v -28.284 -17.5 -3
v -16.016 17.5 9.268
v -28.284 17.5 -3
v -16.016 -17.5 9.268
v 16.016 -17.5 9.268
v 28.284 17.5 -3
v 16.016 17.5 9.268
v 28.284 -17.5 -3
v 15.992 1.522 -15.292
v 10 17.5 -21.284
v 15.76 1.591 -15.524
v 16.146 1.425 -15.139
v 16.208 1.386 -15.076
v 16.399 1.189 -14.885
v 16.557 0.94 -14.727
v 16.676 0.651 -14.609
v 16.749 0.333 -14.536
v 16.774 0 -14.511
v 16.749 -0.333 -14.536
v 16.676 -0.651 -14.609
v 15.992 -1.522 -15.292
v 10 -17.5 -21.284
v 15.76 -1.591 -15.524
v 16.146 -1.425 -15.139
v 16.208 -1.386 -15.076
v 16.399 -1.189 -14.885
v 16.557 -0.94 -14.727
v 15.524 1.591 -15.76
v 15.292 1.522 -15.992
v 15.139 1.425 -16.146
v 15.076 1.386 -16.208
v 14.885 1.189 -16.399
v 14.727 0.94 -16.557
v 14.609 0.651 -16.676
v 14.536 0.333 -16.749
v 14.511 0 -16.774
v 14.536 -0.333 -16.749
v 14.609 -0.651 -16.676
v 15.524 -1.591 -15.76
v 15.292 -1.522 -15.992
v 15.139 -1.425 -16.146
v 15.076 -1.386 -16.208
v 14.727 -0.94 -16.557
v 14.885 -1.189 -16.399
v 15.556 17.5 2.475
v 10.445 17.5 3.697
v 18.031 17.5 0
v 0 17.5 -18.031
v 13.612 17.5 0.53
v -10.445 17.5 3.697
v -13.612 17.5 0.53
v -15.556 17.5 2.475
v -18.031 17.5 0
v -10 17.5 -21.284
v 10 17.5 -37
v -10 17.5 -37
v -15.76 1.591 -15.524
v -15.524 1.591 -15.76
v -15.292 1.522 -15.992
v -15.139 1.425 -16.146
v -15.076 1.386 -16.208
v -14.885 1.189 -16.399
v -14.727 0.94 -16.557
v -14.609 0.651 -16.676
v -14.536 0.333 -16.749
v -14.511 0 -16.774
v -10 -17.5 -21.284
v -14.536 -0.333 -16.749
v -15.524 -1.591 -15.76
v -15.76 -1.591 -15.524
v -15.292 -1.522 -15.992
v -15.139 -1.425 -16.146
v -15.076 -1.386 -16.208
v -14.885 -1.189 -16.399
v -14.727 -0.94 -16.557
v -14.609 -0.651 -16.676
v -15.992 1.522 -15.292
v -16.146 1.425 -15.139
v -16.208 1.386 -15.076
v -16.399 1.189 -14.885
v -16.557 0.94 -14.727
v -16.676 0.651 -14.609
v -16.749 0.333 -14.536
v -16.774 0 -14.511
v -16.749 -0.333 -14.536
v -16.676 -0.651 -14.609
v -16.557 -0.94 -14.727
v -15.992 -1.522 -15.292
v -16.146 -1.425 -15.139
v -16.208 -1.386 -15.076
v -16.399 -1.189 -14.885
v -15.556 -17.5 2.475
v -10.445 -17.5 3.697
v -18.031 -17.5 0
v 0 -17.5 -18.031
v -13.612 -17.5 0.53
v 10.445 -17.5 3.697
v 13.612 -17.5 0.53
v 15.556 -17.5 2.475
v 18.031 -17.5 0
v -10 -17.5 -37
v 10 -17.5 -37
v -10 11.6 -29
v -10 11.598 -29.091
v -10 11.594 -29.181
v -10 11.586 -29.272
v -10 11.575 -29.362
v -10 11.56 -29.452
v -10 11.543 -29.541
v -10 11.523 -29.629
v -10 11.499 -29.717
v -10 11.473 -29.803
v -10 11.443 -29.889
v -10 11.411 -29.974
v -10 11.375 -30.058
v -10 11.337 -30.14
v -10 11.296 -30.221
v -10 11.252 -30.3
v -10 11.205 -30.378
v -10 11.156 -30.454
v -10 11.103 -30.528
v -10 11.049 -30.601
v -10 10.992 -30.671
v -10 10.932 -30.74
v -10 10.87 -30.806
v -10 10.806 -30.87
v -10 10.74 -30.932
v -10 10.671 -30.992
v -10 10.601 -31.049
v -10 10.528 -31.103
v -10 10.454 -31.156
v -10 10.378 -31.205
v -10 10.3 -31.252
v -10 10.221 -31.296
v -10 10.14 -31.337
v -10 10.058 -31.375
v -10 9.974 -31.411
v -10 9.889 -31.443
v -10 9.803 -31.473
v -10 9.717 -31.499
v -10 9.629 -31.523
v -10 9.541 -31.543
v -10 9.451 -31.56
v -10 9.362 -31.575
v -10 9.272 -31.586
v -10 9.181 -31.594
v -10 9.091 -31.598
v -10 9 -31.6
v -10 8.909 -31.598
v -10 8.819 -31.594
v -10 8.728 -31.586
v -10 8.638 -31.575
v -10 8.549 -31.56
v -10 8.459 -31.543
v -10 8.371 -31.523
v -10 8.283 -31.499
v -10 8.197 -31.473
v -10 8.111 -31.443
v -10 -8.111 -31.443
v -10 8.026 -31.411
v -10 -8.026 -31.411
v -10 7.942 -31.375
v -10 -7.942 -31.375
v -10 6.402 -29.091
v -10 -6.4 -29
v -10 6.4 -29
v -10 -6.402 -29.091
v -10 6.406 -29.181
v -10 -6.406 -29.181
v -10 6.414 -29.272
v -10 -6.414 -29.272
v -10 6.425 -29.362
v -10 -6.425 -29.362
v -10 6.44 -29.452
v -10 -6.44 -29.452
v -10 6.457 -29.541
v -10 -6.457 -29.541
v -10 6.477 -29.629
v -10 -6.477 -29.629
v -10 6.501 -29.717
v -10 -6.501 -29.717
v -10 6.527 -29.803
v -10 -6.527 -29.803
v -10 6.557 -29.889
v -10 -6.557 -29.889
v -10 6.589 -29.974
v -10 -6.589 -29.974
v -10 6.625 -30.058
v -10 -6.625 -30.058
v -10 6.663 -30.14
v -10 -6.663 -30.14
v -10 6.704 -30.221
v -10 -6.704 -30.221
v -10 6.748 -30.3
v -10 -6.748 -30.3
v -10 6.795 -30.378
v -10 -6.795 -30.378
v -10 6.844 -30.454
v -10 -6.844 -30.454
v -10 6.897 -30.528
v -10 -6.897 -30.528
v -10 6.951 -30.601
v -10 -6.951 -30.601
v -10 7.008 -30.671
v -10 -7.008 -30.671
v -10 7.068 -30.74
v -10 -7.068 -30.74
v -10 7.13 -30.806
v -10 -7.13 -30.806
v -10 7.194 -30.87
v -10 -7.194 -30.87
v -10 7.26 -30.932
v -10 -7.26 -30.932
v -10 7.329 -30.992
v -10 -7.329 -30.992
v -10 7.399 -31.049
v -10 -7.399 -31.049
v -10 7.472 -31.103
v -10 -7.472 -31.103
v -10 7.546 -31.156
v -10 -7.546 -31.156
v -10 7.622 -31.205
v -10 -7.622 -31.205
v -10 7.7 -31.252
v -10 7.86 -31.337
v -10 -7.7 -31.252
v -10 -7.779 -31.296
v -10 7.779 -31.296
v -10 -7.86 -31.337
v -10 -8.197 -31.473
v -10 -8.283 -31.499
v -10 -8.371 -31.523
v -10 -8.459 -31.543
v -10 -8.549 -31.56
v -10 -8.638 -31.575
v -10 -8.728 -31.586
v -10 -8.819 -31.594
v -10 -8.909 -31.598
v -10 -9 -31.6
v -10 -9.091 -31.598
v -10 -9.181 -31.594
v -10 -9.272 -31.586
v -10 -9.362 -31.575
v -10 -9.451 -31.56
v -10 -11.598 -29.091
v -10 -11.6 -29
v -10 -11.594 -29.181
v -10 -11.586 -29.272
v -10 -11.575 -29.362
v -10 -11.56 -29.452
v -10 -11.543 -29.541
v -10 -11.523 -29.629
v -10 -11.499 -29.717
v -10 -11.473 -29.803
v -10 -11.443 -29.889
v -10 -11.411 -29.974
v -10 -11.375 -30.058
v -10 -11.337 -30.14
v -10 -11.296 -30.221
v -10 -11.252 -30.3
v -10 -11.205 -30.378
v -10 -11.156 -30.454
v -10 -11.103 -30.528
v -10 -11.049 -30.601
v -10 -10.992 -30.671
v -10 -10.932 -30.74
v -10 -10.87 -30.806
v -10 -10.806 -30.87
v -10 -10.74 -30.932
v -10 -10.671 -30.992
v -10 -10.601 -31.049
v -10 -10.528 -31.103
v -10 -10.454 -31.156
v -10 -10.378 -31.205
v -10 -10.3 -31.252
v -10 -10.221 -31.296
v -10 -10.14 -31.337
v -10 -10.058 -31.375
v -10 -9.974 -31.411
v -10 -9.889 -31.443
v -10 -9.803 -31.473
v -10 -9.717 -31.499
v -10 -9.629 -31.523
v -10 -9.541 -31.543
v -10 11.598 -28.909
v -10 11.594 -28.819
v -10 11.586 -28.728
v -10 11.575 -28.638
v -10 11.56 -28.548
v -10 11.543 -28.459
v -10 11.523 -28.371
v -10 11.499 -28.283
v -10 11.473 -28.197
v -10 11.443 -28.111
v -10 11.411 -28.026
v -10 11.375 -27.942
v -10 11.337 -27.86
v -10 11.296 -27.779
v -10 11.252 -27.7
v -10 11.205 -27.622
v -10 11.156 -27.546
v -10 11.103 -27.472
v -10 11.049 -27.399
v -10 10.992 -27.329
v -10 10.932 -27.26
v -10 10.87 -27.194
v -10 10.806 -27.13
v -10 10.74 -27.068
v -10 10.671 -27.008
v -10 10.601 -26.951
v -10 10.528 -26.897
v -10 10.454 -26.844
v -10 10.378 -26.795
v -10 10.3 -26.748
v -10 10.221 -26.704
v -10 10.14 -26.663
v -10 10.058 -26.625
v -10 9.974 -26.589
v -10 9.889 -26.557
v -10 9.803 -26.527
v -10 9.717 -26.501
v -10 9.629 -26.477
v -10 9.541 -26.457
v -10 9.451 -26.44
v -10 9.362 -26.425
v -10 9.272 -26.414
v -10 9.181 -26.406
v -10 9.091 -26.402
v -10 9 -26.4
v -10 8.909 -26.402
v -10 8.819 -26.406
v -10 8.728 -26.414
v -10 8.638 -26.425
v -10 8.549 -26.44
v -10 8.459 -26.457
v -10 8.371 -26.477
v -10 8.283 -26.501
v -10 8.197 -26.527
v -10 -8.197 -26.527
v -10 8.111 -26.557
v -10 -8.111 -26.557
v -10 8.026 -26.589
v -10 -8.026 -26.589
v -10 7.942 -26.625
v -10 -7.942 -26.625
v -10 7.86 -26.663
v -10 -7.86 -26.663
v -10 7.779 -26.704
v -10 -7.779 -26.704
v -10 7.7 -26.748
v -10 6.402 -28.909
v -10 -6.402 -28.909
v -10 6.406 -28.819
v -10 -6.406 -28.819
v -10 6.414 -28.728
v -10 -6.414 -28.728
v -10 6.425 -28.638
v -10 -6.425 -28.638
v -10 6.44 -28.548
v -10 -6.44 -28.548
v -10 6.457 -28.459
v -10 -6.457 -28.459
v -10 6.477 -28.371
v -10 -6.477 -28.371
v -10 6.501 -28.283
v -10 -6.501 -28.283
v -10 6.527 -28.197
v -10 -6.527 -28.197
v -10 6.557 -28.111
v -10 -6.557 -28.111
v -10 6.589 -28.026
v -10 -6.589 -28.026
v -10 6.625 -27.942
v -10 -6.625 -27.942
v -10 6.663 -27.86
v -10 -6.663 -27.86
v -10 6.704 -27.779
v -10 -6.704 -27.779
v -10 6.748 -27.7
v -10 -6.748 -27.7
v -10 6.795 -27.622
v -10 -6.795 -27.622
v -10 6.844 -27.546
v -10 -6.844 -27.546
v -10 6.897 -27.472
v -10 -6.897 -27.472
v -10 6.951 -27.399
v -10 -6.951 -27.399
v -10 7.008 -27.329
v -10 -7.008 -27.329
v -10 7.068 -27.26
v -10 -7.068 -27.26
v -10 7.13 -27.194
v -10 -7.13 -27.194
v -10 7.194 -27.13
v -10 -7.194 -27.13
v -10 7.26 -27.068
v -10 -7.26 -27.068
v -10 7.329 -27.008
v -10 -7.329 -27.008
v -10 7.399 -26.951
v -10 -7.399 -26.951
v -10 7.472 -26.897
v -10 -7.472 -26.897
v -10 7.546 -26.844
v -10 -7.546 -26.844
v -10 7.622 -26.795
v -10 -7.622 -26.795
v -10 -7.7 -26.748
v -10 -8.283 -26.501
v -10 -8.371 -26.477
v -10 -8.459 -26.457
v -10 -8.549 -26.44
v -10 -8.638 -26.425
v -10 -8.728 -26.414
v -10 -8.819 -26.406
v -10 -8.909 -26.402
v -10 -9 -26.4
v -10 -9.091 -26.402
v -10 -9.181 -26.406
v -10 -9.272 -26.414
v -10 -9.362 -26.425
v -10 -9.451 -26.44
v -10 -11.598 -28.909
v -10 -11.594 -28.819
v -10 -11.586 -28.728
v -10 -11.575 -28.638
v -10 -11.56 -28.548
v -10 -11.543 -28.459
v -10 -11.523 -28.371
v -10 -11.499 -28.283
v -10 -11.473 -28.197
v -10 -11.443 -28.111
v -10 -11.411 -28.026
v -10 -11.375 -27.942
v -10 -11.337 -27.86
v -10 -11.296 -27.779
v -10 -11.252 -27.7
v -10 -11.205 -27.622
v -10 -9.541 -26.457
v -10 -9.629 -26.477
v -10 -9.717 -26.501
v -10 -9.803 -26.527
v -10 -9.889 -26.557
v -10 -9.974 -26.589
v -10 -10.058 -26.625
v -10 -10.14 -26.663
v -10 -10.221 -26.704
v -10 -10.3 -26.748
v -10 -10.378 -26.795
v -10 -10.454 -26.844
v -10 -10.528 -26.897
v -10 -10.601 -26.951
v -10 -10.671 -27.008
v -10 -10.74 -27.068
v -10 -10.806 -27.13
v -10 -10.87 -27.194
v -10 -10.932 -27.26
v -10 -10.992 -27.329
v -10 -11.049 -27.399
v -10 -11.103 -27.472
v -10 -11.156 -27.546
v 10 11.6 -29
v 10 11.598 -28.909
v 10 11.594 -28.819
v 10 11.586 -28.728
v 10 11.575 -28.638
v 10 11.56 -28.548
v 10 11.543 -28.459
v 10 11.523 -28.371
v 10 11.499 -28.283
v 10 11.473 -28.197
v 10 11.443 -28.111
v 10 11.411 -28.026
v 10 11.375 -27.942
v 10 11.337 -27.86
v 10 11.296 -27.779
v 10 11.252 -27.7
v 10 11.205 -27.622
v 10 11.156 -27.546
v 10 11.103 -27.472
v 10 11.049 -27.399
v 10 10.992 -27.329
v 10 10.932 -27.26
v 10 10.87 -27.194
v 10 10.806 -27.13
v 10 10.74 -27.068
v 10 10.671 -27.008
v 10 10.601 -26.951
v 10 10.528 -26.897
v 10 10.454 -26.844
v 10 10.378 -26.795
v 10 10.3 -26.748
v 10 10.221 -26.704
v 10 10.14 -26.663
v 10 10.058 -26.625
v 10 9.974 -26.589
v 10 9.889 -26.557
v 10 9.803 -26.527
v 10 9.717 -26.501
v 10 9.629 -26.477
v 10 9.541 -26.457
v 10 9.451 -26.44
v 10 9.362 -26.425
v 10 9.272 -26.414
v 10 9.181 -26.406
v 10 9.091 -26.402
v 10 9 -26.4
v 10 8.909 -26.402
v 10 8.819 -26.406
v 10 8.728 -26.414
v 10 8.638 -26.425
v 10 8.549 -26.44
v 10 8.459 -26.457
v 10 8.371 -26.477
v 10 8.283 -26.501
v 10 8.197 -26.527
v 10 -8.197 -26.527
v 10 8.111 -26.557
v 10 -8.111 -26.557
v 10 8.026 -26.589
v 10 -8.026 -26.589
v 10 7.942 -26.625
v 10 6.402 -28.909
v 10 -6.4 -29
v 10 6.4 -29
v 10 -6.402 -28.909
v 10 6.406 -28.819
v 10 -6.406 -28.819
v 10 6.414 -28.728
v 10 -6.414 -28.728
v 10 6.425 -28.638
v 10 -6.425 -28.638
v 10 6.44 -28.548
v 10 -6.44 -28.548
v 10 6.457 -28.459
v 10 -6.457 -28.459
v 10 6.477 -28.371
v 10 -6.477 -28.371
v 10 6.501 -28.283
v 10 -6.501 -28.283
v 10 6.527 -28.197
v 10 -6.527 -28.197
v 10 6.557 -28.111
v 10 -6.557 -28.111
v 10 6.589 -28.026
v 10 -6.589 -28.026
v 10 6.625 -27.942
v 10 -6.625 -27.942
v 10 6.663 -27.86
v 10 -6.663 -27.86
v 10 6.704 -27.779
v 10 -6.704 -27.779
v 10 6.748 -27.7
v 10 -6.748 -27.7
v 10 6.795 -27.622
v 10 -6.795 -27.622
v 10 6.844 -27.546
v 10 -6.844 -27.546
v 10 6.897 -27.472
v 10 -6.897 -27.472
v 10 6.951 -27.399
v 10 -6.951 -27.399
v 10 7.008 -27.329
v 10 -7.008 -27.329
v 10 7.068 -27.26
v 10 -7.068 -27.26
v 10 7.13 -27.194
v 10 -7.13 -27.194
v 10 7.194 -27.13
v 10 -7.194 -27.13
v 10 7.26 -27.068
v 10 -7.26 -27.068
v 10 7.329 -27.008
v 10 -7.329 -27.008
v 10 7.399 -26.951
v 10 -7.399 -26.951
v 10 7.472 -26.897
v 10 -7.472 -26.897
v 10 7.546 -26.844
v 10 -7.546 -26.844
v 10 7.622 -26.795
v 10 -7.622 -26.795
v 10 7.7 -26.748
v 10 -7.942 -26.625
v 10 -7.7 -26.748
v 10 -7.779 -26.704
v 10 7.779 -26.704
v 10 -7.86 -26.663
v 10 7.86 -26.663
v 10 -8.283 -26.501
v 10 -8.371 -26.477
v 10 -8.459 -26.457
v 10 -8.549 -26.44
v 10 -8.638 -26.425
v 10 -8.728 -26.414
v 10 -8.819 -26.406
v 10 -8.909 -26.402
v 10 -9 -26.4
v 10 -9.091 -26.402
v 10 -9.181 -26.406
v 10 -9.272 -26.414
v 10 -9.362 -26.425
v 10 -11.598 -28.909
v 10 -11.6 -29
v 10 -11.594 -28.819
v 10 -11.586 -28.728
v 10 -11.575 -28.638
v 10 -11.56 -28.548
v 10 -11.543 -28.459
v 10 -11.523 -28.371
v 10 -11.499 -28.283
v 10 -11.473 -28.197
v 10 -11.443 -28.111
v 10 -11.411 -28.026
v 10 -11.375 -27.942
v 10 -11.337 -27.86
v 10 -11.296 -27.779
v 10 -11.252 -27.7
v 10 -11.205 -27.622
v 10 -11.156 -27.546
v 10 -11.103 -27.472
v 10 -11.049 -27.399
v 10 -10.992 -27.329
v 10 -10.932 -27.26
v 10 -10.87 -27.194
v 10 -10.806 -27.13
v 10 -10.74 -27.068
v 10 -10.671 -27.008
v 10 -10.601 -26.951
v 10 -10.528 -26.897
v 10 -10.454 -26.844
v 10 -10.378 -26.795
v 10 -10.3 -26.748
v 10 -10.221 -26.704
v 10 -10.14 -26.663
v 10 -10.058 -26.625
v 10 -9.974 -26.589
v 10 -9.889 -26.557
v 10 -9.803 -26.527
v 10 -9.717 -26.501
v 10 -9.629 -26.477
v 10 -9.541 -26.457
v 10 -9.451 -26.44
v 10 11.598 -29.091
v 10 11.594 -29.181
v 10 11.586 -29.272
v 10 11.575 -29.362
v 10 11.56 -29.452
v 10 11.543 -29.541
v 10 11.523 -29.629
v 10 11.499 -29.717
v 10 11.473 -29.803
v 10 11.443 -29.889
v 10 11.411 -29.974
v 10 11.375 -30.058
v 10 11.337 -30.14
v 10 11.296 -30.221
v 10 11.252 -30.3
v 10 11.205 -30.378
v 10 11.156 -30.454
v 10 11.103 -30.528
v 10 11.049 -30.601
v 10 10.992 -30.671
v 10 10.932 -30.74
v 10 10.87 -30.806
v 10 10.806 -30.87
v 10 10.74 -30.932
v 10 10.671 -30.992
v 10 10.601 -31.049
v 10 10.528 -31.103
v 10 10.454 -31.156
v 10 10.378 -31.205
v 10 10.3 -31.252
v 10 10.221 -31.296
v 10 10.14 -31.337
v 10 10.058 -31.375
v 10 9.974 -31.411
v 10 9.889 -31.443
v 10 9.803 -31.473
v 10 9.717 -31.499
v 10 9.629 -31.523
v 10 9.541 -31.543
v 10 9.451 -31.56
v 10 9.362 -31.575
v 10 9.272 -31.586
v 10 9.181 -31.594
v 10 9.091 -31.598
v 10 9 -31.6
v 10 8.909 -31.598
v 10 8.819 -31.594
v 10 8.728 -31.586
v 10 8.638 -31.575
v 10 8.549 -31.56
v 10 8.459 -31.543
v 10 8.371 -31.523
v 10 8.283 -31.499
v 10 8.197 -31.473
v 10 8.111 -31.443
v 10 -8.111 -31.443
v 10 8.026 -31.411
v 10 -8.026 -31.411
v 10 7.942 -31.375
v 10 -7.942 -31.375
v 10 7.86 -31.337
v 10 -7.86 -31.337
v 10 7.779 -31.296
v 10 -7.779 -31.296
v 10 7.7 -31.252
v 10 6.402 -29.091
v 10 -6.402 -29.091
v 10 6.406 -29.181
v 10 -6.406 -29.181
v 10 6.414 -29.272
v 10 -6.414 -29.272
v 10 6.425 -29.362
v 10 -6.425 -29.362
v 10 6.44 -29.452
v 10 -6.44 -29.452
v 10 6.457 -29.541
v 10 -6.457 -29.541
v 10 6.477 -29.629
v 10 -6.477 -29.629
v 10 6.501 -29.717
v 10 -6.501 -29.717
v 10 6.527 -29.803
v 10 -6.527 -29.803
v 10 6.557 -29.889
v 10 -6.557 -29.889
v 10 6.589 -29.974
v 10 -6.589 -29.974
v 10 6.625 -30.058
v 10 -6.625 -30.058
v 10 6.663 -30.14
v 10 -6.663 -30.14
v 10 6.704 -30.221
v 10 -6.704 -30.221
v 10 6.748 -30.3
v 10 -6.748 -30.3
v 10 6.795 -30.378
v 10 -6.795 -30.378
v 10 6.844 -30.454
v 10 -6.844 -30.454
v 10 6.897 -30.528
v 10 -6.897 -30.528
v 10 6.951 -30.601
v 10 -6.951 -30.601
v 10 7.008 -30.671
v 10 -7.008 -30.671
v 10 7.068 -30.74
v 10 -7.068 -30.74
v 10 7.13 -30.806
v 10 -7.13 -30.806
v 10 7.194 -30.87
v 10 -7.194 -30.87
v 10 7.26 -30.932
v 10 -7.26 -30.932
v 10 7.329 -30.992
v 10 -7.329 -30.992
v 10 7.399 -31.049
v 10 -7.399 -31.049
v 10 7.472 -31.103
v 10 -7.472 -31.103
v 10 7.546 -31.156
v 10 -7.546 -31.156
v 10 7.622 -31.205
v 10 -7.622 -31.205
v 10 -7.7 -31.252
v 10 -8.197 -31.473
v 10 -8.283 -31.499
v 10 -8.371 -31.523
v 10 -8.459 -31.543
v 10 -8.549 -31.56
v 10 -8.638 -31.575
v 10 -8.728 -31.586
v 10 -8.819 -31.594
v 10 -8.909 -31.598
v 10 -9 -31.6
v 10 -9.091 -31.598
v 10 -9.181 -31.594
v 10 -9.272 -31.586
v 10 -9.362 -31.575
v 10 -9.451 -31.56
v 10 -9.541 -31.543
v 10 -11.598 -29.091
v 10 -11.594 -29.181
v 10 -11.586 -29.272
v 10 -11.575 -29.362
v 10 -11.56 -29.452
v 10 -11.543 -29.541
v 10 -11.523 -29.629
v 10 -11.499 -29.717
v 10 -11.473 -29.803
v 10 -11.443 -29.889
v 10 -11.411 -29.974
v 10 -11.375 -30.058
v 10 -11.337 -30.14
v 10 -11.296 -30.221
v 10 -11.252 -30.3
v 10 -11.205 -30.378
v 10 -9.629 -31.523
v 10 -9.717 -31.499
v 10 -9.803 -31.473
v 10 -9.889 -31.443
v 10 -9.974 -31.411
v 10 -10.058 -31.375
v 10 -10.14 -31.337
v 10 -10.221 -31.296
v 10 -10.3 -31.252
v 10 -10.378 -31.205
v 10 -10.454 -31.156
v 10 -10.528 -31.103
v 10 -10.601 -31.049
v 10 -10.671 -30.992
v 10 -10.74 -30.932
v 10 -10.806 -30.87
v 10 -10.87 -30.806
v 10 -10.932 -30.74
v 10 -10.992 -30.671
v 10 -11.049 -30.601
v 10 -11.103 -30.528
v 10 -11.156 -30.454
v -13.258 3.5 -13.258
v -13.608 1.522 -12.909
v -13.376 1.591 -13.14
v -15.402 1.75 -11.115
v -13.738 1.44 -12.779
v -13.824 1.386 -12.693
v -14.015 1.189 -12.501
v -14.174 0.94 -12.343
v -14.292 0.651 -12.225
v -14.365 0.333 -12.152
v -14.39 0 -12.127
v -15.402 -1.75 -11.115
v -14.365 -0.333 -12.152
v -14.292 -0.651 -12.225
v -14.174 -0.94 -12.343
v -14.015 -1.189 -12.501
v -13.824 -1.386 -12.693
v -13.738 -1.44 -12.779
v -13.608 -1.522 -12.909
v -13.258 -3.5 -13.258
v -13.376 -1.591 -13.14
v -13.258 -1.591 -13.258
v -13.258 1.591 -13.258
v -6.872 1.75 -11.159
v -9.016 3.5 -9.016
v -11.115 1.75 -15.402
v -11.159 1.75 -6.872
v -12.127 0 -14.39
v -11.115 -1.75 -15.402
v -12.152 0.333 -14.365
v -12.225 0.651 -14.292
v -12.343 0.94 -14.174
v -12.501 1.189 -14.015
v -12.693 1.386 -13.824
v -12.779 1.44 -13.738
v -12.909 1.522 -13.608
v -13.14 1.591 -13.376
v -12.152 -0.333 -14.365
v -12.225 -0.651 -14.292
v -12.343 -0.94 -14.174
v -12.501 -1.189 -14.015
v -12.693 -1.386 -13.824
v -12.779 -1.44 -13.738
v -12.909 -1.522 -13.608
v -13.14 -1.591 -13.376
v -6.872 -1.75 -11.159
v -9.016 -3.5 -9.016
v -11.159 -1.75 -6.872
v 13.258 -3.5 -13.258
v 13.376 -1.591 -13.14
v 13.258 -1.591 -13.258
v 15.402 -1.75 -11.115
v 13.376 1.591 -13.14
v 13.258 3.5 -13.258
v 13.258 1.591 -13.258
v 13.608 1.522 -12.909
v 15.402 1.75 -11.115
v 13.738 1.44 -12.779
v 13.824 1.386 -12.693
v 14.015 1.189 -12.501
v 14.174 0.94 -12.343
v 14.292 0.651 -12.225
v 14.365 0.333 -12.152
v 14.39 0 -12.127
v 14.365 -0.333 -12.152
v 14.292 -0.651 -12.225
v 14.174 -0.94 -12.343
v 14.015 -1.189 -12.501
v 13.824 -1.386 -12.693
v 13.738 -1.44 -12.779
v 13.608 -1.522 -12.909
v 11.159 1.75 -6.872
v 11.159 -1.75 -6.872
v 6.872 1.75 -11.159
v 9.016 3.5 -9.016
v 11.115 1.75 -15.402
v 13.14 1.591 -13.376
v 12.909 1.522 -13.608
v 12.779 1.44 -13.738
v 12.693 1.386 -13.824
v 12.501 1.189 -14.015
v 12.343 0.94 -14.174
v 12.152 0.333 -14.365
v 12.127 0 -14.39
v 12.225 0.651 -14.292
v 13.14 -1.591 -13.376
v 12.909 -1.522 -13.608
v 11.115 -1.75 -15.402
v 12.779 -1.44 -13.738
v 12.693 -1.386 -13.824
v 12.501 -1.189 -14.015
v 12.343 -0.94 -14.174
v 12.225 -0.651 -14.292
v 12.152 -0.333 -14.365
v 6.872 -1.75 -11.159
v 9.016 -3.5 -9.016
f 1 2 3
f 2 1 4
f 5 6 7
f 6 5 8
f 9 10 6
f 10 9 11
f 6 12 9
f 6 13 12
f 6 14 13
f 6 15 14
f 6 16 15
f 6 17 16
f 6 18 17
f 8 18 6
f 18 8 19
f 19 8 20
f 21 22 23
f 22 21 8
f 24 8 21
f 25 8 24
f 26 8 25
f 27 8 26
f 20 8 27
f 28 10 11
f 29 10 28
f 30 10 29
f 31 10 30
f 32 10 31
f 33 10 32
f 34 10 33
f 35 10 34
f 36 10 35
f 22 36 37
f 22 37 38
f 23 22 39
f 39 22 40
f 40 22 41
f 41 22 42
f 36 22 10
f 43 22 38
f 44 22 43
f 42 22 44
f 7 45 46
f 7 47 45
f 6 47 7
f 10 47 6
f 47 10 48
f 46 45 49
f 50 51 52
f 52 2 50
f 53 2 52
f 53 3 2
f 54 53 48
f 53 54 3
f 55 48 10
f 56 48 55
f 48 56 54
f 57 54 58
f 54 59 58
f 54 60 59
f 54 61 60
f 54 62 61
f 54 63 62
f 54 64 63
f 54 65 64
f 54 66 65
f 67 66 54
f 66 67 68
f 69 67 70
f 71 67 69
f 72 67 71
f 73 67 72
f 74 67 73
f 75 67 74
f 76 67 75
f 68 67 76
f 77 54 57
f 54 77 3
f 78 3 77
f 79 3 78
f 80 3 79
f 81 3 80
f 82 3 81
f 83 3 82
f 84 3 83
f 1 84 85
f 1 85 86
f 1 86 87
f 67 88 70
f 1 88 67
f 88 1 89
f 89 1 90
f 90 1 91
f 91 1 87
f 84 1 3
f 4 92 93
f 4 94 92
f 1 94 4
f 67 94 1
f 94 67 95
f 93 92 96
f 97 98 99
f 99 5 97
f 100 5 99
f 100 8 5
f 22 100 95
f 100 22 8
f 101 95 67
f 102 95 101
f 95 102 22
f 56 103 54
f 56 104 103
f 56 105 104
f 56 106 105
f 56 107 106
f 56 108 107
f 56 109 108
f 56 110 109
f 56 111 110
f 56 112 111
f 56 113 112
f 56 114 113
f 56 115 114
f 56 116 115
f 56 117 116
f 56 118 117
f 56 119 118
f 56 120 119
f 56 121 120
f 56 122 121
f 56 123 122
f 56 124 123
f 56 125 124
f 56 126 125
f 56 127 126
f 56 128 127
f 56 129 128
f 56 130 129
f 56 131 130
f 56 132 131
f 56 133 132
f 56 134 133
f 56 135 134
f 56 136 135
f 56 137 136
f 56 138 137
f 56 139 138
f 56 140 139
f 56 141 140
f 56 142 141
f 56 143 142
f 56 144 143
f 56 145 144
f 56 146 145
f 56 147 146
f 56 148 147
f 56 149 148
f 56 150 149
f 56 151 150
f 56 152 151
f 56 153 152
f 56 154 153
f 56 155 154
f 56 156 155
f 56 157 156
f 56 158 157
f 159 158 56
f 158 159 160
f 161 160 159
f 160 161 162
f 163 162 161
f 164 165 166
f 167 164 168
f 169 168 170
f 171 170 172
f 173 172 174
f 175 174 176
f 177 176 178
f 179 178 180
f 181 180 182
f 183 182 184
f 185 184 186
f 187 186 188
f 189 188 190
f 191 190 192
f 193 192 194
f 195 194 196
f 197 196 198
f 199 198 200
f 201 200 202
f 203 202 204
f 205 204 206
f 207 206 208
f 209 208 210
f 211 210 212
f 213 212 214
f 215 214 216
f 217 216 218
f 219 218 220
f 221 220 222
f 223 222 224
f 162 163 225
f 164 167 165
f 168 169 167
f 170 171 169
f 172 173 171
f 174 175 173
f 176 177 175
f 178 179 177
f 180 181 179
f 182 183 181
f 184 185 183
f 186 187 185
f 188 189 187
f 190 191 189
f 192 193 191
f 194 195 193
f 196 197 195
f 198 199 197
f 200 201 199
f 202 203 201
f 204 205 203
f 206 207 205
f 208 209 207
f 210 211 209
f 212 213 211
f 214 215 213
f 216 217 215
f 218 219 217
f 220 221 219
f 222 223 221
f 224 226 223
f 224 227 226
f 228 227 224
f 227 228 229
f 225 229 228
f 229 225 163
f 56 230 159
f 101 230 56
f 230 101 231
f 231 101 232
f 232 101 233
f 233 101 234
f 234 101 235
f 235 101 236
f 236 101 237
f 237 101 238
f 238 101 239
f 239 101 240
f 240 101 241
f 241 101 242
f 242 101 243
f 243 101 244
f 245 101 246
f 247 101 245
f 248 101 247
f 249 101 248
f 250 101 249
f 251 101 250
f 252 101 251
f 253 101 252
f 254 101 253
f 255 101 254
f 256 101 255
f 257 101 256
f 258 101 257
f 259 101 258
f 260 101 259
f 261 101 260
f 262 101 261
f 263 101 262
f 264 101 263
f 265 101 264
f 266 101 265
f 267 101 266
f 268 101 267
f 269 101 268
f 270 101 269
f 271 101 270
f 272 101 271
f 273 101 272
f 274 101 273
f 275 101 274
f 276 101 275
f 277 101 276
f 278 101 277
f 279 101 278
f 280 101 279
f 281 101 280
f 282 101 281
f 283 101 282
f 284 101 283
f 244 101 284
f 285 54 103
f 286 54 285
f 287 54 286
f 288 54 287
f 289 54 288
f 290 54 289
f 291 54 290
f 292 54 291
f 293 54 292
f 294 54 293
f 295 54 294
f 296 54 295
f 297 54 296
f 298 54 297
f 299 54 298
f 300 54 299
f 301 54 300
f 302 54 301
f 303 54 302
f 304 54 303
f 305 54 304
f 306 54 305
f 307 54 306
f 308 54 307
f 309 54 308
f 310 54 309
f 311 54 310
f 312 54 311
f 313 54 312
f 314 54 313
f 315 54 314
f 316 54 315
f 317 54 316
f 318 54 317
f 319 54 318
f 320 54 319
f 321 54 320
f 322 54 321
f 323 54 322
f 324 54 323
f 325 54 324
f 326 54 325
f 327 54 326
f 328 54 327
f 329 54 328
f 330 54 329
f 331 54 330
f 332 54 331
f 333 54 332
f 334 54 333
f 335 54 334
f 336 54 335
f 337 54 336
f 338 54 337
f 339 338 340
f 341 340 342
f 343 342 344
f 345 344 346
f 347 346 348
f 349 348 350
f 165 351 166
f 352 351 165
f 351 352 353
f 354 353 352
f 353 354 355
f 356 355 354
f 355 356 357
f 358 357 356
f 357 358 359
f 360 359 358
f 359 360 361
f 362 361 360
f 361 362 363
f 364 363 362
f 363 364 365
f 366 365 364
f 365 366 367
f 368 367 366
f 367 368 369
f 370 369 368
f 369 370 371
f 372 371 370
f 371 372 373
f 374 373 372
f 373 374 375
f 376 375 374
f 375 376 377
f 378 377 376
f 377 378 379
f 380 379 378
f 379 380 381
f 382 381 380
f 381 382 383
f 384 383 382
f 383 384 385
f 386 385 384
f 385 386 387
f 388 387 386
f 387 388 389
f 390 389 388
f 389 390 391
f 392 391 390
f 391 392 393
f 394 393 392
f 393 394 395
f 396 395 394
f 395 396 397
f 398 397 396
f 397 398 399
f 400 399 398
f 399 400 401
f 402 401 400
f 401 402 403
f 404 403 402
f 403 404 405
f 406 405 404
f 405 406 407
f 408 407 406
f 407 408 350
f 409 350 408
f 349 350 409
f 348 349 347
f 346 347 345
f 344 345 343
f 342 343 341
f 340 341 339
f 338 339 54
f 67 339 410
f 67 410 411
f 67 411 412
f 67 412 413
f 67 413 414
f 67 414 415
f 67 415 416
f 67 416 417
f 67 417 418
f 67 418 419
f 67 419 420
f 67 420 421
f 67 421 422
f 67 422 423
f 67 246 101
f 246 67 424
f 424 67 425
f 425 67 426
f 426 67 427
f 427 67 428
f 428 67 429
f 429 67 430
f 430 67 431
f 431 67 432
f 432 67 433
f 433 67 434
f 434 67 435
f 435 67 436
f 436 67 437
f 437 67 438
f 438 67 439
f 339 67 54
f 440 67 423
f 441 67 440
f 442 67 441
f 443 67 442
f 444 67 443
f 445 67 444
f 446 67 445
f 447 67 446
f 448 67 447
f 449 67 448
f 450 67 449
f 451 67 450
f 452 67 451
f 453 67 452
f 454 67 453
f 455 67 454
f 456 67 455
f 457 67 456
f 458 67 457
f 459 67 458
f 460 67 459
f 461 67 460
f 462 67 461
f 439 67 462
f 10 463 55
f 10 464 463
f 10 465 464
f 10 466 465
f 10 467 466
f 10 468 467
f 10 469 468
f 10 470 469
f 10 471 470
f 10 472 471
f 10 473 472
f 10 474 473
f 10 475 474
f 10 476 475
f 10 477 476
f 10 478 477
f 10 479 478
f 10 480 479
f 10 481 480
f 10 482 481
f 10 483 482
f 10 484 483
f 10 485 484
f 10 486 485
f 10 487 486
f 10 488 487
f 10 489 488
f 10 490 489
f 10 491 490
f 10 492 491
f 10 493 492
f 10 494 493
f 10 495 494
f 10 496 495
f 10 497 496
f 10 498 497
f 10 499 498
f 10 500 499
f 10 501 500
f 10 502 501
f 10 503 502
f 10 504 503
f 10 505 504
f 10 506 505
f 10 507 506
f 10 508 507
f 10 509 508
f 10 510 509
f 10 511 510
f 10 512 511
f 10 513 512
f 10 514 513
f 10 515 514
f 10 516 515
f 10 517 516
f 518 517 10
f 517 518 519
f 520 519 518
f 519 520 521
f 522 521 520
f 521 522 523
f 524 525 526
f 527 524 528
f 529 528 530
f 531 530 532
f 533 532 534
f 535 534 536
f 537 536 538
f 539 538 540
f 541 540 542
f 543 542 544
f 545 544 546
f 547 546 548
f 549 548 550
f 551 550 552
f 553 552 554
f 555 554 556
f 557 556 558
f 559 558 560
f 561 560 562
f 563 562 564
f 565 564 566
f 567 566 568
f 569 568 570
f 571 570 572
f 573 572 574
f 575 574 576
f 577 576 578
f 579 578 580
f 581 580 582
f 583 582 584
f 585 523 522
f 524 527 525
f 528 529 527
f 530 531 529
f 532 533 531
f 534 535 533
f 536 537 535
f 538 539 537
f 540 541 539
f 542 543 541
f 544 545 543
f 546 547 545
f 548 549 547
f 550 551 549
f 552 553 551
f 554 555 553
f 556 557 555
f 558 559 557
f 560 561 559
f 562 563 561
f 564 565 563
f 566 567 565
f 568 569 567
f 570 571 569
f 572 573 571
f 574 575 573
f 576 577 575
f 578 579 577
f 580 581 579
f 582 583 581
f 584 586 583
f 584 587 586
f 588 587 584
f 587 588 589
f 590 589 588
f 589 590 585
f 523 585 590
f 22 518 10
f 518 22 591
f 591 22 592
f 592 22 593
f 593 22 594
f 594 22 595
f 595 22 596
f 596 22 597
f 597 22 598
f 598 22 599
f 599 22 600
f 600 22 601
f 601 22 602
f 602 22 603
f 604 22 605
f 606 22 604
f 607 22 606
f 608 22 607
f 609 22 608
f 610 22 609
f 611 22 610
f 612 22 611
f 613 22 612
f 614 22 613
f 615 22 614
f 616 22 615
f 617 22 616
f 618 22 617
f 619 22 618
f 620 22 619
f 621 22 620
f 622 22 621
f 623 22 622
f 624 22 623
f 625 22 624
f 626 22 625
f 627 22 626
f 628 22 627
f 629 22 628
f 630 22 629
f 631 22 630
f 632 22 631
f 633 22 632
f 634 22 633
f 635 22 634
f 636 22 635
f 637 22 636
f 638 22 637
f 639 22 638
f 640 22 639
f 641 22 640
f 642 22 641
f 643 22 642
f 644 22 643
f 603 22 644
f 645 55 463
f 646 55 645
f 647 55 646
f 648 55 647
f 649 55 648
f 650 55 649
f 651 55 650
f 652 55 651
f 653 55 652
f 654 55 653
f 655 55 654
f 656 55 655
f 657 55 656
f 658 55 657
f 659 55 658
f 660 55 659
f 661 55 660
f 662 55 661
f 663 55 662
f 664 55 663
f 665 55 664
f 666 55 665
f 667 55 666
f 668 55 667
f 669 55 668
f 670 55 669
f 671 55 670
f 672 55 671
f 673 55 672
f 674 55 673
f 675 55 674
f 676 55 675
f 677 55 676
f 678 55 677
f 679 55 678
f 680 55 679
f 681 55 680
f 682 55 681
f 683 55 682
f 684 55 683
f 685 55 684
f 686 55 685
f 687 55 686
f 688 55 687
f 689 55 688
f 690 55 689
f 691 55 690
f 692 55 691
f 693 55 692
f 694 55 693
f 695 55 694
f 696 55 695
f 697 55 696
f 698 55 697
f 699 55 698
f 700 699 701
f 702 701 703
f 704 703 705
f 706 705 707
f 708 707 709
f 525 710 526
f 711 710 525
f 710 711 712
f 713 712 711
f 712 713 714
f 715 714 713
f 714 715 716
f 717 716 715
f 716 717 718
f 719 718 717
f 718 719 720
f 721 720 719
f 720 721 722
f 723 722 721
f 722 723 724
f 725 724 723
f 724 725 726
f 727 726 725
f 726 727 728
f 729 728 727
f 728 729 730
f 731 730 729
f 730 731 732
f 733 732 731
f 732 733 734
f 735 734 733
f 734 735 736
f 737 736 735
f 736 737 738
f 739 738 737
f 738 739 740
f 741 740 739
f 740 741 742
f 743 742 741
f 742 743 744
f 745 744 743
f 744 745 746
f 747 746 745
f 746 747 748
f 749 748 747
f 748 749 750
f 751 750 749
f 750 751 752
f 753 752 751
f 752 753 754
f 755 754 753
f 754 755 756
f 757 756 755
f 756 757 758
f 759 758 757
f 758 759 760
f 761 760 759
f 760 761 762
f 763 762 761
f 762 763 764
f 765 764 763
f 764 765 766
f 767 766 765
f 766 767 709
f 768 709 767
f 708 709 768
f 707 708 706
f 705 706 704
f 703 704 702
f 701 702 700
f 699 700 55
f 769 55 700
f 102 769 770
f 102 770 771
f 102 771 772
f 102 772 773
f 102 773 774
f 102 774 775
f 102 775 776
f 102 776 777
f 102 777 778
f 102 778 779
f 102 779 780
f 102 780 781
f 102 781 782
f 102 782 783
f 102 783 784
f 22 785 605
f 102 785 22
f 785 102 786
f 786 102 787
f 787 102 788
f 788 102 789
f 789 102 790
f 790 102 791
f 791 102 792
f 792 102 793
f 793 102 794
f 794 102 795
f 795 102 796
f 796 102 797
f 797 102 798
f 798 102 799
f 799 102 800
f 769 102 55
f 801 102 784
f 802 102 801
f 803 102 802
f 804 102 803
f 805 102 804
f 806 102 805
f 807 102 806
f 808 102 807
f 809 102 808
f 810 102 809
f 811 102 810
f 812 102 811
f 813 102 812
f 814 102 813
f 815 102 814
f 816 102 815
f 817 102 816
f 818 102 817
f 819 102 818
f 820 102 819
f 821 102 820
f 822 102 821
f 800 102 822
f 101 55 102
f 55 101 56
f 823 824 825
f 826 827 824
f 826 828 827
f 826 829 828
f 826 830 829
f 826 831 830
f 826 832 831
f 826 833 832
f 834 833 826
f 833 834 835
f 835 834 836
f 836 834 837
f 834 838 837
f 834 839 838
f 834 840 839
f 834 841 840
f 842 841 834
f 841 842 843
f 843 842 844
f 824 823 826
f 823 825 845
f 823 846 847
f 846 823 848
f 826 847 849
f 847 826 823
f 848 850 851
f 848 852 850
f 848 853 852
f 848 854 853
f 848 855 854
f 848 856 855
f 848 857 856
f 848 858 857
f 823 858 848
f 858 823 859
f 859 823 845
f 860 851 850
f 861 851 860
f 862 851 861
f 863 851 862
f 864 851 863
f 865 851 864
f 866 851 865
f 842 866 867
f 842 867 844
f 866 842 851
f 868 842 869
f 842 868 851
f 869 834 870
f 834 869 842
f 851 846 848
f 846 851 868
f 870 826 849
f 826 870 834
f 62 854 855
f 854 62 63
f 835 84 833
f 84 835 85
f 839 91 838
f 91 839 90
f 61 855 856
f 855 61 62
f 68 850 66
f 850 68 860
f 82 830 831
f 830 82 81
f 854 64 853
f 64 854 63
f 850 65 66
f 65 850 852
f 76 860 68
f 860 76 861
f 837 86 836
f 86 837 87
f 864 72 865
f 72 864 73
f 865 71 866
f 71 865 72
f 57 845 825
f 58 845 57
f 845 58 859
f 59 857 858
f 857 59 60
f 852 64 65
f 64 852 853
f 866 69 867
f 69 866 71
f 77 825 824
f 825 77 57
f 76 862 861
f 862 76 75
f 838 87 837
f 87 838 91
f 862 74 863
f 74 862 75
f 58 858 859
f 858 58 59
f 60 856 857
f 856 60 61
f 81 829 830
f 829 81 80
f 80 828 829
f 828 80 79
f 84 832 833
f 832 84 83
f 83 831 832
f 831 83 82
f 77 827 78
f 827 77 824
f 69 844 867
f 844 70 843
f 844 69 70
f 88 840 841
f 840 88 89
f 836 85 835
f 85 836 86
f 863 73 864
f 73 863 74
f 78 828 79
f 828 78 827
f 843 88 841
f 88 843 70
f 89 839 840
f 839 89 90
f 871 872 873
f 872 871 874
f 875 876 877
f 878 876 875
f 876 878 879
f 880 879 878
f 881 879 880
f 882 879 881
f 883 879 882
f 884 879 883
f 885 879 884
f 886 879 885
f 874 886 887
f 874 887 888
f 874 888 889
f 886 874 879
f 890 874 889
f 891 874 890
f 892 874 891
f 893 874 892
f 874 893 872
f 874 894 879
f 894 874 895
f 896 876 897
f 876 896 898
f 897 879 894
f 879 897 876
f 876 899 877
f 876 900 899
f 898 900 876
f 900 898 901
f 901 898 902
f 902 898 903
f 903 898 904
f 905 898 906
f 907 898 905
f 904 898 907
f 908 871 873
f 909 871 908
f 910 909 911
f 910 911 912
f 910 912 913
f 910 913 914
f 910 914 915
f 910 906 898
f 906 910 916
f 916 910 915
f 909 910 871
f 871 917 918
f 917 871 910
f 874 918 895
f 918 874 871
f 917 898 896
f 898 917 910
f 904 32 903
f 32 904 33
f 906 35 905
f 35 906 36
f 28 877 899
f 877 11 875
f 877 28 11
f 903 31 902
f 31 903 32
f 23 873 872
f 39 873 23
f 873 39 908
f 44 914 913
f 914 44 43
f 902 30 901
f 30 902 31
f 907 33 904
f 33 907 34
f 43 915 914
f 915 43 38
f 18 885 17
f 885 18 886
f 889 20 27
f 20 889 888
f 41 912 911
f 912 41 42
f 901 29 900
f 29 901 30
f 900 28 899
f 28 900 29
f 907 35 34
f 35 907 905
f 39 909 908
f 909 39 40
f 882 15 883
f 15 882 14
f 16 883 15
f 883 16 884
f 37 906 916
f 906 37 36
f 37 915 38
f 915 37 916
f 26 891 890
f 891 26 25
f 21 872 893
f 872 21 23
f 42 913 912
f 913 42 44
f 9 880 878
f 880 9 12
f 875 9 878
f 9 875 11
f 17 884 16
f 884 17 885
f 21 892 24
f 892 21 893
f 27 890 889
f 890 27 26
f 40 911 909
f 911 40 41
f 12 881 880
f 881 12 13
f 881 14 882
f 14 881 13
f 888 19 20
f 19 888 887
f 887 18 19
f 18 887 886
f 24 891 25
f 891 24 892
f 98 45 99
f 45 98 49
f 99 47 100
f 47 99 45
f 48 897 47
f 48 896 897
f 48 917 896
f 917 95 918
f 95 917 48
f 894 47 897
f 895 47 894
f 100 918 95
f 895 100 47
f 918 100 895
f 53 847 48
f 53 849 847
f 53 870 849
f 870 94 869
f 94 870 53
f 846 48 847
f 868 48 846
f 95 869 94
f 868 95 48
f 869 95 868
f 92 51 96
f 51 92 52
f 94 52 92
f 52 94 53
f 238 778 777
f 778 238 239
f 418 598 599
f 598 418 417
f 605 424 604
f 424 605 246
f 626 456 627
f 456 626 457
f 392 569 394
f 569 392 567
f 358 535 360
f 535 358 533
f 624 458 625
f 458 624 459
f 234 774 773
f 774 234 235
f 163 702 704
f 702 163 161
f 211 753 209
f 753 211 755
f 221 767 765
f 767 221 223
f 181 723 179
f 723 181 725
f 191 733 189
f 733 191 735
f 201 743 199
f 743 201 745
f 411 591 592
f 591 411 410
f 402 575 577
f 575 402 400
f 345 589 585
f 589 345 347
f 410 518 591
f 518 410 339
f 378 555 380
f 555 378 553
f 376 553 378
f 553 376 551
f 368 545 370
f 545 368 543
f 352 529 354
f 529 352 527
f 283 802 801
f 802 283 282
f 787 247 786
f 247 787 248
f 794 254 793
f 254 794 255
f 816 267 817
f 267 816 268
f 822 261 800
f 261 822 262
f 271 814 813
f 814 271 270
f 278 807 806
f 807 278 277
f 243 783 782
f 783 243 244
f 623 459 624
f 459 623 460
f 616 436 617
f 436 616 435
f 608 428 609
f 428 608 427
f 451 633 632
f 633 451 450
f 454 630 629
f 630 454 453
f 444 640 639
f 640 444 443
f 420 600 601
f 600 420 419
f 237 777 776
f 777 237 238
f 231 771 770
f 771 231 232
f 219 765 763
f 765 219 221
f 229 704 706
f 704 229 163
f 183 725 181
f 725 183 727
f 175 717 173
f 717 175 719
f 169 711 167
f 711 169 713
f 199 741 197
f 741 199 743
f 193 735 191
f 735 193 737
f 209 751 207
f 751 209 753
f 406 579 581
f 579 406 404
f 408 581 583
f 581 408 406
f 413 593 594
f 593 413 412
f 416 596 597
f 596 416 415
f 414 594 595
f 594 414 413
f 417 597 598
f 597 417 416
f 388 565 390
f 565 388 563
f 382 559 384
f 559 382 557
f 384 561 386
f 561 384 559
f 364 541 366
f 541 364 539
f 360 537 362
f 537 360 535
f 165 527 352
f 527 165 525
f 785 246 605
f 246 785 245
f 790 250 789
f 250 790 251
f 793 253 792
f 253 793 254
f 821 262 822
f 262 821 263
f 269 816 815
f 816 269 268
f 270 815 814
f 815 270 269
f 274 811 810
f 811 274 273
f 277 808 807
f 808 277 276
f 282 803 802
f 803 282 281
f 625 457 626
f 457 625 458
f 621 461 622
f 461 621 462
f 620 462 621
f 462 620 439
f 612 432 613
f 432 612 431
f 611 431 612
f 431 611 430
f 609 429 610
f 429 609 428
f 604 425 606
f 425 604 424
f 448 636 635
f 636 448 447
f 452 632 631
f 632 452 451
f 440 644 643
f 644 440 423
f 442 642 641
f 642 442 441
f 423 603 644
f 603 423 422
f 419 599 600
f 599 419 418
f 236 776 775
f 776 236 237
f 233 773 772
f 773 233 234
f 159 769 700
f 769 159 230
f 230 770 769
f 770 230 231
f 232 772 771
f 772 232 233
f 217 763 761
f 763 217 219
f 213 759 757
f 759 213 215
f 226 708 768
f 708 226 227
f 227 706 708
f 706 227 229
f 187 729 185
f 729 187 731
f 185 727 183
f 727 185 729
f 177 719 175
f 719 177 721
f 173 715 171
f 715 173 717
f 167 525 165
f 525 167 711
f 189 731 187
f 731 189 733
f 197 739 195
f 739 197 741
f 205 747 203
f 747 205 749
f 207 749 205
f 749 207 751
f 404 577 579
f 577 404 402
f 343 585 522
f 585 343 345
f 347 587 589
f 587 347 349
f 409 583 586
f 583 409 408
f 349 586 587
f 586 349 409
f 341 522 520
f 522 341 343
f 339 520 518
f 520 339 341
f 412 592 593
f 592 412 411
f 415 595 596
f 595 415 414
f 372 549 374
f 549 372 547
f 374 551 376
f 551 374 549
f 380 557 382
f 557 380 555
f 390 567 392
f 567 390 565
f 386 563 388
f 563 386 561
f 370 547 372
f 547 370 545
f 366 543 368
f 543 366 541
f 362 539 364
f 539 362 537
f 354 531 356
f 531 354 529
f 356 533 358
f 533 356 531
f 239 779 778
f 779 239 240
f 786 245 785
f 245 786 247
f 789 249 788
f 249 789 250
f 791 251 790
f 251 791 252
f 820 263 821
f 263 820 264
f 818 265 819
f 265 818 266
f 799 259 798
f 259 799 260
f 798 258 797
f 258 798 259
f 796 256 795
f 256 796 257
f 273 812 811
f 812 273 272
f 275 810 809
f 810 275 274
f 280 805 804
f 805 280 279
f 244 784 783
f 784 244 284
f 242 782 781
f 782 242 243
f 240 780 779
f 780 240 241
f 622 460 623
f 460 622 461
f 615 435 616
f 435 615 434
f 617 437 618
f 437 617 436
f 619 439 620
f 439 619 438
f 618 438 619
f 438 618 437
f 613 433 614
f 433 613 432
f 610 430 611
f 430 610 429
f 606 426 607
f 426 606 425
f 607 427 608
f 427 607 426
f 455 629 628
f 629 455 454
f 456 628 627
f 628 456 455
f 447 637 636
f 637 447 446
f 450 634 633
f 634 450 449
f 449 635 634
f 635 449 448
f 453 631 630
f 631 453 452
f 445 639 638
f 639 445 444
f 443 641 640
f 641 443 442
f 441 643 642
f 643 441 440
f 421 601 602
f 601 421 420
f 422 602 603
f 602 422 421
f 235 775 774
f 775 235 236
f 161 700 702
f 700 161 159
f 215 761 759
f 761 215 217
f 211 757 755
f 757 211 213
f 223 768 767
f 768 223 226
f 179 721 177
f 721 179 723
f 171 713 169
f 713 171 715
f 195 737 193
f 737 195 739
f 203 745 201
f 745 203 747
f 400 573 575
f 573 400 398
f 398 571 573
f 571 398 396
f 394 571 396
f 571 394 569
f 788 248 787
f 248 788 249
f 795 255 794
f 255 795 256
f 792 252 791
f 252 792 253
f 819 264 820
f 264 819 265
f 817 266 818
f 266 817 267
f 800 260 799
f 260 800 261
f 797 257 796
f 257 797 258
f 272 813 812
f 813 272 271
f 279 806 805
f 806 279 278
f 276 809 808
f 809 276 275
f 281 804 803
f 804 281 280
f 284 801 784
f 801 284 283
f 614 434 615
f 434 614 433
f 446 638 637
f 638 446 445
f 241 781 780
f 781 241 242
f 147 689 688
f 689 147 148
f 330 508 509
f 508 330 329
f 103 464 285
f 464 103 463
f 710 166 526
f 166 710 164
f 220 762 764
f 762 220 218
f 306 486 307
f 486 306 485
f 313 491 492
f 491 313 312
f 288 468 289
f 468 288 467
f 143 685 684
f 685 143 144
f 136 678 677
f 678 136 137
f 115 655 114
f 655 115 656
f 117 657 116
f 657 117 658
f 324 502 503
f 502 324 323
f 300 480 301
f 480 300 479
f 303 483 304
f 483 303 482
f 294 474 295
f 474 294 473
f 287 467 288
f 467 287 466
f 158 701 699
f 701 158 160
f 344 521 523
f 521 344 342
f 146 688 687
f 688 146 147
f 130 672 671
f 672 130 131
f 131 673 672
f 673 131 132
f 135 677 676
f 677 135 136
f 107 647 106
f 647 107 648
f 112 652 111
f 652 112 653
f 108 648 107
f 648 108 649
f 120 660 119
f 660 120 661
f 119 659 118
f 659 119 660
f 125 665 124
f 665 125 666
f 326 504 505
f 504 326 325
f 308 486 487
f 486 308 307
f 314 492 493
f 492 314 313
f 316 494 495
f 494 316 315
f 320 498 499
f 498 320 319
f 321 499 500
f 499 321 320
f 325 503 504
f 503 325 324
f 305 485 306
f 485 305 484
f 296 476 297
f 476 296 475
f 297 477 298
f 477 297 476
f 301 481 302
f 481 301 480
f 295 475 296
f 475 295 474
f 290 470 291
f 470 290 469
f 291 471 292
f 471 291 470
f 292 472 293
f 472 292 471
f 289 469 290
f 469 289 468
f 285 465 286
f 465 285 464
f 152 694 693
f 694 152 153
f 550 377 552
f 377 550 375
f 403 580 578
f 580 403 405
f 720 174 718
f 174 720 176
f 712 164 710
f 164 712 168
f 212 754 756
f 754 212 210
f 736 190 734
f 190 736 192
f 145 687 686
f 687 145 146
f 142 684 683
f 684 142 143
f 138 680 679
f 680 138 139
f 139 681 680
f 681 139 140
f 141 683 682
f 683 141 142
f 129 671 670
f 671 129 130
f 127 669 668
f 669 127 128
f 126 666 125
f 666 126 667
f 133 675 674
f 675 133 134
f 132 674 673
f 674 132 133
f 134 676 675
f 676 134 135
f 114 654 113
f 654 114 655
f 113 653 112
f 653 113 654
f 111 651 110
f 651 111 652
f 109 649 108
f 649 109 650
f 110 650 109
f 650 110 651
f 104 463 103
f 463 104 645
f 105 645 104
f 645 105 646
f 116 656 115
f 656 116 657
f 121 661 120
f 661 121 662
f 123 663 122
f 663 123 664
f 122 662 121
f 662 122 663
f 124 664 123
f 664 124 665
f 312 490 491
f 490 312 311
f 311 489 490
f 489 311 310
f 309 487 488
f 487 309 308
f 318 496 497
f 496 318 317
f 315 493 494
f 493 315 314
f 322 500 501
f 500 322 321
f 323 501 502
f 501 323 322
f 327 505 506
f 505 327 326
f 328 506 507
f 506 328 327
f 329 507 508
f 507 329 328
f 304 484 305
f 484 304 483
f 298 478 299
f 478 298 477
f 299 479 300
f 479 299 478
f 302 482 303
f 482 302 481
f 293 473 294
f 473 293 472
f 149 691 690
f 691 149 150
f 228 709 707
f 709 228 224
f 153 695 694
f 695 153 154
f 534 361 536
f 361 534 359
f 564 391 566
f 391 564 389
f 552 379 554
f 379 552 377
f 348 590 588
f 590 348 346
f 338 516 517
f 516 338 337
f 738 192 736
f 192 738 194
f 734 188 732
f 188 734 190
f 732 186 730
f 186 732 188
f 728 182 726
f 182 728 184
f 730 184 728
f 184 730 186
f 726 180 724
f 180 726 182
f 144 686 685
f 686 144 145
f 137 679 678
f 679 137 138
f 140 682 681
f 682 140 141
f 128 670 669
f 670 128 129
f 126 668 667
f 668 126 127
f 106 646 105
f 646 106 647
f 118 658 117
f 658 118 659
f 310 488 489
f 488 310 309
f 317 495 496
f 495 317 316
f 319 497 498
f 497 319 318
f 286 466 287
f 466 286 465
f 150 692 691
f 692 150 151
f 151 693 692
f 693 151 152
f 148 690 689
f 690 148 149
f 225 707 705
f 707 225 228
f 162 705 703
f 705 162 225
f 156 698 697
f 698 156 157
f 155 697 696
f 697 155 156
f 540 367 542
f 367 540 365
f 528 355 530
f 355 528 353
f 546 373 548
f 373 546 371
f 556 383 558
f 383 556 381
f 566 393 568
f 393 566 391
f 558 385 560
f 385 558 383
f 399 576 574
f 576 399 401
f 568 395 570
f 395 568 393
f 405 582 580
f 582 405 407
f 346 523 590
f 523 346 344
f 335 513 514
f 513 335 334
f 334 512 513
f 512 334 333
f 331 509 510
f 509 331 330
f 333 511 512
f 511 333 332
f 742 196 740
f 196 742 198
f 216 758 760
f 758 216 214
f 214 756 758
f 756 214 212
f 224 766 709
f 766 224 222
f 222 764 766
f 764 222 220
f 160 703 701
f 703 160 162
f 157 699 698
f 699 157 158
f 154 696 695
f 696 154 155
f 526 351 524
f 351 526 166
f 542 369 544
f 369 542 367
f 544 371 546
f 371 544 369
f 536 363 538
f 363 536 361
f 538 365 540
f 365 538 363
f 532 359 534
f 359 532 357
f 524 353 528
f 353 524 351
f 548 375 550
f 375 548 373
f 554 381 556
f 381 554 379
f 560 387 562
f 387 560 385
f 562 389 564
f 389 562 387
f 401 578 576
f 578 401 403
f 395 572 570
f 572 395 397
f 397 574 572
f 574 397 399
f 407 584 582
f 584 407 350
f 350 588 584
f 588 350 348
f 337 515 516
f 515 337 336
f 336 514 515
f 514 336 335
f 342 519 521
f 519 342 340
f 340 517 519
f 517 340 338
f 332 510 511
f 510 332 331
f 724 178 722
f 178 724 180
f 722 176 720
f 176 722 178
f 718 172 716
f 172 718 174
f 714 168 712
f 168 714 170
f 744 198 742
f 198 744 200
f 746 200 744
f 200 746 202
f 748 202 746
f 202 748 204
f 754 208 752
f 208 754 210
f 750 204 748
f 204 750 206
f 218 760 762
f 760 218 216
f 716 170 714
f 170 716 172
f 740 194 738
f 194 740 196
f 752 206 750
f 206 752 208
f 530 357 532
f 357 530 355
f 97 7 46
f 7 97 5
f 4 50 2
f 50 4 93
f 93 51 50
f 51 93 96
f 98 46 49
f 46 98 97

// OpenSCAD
//cube([120,120,3], center = true);
//translate([-45,-45,0])cylinder(h = 3, r=15, $fn = 180, center = true);
//rotate_extrude(convexity = 10, $fn = A) translate([20+1.5, 0, 0])circle(d = 3, $fn = B);
//module Test(){







difference(){
    
union(){    
translate([0,0,-3]) rotate([0,45,0]) cube([35+5,25+10,35+5], center = true);    
    
//pillar
translate([0,0,-29])cube([20,35,16], center = true);    
 
//m8 holder 
//translate([0,-7.5,-45-10])cylinder(h = 20, d=20, $fn = 180, center = true);   
   
//m8 holder extention
//translate([0,-7.5+10,-45-10])cube([20,20,20], center = true); 
 
 

 
    

}

for(i=[0:1]) mirror([i,0,0]){
//m3 bolt
rotate([0,45,0]) translate([0,0,-9.75-6])rotate([0,0,30]) cylinder(h = 6, d=7, $fn = 6, center = true);

rotate([0,45,0]) translate([0,0,-9.75-6]) cylinder(h = 30, d=3.2, $fn = 30, center = true);

}

    
//side holes for V angle iron    
for(i=[1,3]) rotate([0,i*45,0]) translate([13.5-2.5,0,0]) cube([3.5,25.2+10,25.5], center = true);
    
 translate([0,0,18]) rotate([0,45,0]) cube([35,26+10,35], center = true);     

rotate([0,45,0])cube([20,26+10,20], center = true); 

//m8 hole 
//translate([0,-7.5,-45-10])cylinder(h = 21, d=8.25, $fn = 180, center = true);  


//m5 holes
for(i=[-1,1])translate([0,i*9,-29])rotate([0,90,0])cylinder(h = 50, d=5.2, $fn = 180, center = true);
    
}    


   
